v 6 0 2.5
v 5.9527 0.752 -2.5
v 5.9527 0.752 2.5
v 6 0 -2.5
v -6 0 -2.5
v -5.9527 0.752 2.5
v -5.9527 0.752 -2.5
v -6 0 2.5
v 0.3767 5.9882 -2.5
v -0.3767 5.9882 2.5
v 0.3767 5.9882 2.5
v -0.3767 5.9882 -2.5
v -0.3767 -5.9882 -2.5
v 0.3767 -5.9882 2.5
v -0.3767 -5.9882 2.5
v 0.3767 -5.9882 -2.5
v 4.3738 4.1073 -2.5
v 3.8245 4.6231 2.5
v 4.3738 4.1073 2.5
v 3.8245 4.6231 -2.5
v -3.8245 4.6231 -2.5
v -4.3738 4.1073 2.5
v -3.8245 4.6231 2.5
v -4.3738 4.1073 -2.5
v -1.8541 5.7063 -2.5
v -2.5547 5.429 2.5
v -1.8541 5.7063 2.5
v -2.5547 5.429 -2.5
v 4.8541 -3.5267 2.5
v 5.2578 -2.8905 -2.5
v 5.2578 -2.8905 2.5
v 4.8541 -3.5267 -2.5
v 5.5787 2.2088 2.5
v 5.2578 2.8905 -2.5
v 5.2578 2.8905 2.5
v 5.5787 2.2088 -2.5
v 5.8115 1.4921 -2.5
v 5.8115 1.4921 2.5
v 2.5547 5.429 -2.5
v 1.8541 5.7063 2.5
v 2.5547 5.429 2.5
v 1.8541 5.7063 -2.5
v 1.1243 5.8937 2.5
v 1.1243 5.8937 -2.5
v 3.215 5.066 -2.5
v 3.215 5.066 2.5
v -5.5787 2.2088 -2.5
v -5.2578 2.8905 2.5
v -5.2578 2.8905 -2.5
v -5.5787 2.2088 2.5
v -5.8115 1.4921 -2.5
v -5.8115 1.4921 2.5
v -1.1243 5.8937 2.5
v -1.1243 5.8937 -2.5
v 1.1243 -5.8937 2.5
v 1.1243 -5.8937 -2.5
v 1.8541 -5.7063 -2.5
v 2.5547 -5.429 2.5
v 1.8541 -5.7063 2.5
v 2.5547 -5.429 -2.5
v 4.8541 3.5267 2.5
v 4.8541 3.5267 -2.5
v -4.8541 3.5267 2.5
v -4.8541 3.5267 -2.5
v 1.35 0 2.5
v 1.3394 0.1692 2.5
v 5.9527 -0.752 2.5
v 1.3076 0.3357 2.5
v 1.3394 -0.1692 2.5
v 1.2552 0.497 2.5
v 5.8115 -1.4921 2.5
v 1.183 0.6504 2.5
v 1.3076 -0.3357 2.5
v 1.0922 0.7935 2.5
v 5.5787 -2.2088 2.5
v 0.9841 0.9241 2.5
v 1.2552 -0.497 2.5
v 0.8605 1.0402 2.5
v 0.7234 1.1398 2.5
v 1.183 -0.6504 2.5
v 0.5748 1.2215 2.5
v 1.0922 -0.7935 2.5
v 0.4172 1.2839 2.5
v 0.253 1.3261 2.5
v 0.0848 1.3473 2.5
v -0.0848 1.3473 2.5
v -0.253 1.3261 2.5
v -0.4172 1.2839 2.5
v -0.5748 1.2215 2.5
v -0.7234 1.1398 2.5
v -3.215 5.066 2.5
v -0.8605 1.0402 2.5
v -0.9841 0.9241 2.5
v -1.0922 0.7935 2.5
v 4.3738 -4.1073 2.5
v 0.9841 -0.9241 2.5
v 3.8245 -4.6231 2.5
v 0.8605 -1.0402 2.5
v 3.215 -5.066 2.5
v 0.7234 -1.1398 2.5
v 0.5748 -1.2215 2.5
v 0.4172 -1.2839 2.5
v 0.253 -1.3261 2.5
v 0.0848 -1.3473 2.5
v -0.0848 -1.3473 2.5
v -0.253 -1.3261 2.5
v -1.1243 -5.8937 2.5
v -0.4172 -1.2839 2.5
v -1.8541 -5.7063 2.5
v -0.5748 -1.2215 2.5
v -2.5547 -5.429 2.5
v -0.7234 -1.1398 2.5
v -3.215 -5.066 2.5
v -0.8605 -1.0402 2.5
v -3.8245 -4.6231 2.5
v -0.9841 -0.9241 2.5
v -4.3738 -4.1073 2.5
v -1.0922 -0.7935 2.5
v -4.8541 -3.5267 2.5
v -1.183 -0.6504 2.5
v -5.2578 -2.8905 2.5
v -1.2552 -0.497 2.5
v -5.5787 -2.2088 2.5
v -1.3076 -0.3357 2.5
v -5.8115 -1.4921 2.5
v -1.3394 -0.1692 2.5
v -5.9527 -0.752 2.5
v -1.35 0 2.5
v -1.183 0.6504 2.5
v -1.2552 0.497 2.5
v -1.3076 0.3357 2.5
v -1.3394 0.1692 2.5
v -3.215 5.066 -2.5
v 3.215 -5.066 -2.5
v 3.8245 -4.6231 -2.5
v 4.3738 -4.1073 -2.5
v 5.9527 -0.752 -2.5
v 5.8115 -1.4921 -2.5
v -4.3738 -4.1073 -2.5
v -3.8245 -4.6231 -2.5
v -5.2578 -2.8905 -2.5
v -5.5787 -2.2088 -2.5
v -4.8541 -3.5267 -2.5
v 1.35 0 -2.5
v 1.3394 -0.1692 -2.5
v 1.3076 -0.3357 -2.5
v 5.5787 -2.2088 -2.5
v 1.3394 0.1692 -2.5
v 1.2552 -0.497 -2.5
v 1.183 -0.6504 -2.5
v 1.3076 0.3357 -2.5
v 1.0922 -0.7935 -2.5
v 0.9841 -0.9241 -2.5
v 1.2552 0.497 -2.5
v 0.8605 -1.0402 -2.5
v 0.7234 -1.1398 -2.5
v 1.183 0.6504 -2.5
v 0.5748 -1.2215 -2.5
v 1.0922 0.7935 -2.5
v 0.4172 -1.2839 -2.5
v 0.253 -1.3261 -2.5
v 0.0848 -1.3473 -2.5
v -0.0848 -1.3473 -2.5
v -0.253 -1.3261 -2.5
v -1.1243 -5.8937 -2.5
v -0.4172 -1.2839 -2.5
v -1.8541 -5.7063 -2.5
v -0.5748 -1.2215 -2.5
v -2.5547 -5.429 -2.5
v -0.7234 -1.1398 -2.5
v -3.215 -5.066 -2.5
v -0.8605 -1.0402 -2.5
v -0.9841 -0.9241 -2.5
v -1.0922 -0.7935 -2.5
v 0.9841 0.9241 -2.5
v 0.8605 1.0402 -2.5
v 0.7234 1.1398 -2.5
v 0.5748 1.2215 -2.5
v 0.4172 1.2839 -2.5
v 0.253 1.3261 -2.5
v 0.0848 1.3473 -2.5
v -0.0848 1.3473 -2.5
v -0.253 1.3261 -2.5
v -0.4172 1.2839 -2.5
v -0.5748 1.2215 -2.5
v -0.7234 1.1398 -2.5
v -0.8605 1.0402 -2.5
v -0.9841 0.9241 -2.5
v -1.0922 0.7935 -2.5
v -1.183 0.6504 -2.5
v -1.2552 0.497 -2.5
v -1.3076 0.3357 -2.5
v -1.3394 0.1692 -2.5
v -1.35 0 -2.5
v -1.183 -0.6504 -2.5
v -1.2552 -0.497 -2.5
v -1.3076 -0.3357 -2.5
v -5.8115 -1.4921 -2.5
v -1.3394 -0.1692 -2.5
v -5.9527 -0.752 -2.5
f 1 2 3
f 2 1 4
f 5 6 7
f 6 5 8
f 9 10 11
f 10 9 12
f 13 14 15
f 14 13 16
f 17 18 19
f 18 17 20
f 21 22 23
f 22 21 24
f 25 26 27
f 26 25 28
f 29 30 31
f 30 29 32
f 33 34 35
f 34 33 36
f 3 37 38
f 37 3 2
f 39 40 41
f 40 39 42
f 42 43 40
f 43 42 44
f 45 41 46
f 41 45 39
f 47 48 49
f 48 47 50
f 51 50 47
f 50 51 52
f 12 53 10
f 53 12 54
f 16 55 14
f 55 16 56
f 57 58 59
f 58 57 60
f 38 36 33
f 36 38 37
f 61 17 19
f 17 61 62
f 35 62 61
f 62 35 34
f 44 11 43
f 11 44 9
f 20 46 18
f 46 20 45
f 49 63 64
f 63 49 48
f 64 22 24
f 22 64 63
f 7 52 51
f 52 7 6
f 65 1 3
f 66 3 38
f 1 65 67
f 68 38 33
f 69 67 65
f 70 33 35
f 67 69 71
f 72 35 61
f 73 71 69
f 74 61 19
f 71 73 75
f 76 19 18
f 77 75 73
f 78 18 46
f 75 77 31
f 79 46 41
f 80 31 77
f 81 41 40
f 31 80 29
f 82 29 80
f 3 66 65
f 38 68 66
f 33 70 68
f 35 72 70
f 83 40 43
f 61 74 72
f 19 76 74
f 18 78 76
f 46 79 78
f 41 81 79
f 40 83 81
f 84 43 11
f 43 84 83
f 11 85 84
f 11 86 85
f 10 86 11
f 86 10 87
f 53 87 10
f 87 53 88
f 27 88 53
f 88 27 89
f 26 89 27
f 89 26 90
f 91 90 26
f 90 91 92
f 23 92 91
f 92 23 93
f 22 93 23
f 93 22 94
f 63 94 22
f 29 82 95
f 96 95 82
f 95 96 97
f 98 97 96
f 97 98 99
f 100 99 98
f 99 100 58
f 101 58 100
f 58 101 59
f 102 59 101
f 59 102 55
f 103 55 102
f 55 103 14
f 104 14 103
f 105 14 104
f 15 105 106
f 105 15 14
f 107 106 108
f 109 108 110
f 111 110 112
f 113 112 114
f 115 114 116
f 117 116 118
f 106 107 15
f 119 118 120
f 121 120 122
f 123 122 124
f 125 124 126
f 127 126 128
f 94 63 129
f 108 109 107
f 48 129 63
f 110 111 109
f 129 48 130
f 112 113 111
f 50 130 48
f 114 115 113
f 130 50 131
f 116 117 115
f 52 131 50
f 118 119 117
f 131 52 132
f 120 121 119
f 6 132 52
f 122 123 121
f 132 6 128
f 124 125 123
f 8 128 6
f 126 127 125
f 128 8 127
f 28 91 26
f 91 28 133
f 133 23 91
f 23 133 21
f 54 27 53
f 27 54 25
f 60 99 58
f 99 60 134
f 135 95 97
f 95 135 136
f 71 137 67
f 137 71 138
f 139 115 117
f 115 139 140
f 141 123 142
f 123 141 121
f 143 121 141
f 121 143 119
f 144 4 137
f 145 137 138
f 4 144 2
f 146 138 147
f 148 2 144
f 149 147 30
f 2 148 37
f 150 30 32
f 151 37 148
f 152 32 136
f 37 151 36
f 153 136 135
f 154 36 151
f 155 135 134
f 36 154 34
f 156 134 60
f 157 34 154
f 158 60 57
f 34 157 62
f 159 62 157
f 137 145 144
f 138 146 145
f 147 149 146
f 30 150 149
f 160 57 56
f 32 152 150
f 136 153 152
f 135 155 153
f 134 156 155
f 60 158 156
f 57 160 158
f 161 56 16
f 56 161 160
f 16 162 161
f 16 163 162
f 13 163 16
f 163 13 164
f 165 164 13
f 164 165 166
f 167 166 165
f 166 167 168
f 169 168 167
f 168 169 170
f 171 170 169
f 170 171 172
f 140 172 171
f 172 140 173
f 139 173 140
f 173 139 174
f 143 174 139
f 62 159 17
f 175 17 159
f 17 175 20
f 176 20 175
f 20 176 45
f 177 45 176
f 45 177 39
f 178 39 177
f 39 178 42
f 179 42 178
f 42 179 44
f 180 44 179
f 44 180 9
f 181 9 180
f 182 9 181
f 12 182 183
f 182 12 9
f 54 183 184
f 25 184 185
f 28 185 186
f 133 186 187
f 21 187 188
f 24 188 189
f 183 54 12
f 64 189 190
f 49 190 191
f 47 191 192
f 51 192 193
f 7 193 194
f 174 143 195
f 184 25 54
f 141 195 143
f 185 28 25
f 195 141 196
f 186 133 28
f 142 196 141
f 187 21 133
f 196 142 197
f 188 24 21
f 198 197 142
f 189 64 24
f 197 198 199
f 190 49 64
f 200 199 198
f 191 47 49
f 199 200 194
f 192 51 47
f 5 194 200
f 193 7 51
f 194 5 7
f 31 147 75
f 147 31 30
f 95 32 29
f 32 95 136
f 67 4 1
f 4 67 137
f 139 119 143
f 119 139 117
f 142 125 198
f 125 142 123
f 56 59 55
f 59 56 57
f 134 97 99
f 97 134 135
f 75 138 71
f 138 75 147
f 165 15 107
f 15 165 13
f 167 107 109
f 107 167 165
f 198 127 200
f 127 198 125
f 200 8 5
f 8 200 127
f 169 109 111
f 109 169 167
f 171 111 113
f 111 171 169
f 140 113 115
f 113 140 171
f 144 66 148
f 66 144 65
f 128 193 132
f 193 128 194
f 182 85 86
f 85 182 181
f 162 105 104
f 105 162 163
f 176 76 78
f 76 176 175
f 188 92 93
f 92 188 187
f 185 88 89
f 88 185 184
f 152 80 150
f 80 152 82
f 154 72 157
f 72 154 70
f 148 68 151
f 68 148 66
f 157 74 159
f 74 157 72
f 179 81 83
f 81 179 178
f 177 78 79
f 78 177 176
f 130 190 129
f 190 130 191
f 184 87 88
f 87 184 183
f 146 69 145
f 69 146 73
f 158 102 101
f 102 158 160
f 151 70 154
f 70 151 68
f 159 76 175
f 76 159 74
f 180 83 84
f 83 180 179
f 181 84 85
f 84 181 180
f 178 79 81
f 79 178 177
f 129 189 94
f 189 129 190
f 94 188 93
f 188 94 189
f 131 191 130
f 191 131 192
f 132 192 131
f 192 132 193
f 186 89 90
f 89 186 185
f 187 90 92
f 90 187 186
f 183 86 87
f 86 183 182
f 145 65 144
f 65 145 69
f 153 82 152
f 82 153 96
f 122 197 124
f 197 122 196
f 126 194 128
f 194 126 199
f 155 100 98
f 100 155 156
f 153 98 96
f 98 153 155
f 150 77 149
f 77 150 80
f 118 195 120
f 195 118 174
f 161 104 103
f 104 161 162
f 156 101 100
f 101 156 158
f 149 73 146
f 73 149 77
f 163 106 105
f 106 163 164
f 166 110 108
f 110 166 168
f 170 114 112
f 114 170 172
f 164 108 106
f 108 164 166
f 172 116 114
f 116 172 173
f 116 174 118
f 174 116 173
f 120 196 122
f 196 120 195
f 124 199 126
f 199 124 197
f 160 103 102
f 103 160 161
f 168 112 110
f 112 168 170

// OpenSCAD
$fn = 50;


difference() {
	union() {
		translate(v = [0, 0, -2.5000000000]) {
			cylinder(h = 5, r = 6.0000000000);
		}
	}
	union() {
		translate(v = [0, 0, -100.0000000000]) {
			cylinder(h = 200, r = 1.3500000000);
		}
	}
}
